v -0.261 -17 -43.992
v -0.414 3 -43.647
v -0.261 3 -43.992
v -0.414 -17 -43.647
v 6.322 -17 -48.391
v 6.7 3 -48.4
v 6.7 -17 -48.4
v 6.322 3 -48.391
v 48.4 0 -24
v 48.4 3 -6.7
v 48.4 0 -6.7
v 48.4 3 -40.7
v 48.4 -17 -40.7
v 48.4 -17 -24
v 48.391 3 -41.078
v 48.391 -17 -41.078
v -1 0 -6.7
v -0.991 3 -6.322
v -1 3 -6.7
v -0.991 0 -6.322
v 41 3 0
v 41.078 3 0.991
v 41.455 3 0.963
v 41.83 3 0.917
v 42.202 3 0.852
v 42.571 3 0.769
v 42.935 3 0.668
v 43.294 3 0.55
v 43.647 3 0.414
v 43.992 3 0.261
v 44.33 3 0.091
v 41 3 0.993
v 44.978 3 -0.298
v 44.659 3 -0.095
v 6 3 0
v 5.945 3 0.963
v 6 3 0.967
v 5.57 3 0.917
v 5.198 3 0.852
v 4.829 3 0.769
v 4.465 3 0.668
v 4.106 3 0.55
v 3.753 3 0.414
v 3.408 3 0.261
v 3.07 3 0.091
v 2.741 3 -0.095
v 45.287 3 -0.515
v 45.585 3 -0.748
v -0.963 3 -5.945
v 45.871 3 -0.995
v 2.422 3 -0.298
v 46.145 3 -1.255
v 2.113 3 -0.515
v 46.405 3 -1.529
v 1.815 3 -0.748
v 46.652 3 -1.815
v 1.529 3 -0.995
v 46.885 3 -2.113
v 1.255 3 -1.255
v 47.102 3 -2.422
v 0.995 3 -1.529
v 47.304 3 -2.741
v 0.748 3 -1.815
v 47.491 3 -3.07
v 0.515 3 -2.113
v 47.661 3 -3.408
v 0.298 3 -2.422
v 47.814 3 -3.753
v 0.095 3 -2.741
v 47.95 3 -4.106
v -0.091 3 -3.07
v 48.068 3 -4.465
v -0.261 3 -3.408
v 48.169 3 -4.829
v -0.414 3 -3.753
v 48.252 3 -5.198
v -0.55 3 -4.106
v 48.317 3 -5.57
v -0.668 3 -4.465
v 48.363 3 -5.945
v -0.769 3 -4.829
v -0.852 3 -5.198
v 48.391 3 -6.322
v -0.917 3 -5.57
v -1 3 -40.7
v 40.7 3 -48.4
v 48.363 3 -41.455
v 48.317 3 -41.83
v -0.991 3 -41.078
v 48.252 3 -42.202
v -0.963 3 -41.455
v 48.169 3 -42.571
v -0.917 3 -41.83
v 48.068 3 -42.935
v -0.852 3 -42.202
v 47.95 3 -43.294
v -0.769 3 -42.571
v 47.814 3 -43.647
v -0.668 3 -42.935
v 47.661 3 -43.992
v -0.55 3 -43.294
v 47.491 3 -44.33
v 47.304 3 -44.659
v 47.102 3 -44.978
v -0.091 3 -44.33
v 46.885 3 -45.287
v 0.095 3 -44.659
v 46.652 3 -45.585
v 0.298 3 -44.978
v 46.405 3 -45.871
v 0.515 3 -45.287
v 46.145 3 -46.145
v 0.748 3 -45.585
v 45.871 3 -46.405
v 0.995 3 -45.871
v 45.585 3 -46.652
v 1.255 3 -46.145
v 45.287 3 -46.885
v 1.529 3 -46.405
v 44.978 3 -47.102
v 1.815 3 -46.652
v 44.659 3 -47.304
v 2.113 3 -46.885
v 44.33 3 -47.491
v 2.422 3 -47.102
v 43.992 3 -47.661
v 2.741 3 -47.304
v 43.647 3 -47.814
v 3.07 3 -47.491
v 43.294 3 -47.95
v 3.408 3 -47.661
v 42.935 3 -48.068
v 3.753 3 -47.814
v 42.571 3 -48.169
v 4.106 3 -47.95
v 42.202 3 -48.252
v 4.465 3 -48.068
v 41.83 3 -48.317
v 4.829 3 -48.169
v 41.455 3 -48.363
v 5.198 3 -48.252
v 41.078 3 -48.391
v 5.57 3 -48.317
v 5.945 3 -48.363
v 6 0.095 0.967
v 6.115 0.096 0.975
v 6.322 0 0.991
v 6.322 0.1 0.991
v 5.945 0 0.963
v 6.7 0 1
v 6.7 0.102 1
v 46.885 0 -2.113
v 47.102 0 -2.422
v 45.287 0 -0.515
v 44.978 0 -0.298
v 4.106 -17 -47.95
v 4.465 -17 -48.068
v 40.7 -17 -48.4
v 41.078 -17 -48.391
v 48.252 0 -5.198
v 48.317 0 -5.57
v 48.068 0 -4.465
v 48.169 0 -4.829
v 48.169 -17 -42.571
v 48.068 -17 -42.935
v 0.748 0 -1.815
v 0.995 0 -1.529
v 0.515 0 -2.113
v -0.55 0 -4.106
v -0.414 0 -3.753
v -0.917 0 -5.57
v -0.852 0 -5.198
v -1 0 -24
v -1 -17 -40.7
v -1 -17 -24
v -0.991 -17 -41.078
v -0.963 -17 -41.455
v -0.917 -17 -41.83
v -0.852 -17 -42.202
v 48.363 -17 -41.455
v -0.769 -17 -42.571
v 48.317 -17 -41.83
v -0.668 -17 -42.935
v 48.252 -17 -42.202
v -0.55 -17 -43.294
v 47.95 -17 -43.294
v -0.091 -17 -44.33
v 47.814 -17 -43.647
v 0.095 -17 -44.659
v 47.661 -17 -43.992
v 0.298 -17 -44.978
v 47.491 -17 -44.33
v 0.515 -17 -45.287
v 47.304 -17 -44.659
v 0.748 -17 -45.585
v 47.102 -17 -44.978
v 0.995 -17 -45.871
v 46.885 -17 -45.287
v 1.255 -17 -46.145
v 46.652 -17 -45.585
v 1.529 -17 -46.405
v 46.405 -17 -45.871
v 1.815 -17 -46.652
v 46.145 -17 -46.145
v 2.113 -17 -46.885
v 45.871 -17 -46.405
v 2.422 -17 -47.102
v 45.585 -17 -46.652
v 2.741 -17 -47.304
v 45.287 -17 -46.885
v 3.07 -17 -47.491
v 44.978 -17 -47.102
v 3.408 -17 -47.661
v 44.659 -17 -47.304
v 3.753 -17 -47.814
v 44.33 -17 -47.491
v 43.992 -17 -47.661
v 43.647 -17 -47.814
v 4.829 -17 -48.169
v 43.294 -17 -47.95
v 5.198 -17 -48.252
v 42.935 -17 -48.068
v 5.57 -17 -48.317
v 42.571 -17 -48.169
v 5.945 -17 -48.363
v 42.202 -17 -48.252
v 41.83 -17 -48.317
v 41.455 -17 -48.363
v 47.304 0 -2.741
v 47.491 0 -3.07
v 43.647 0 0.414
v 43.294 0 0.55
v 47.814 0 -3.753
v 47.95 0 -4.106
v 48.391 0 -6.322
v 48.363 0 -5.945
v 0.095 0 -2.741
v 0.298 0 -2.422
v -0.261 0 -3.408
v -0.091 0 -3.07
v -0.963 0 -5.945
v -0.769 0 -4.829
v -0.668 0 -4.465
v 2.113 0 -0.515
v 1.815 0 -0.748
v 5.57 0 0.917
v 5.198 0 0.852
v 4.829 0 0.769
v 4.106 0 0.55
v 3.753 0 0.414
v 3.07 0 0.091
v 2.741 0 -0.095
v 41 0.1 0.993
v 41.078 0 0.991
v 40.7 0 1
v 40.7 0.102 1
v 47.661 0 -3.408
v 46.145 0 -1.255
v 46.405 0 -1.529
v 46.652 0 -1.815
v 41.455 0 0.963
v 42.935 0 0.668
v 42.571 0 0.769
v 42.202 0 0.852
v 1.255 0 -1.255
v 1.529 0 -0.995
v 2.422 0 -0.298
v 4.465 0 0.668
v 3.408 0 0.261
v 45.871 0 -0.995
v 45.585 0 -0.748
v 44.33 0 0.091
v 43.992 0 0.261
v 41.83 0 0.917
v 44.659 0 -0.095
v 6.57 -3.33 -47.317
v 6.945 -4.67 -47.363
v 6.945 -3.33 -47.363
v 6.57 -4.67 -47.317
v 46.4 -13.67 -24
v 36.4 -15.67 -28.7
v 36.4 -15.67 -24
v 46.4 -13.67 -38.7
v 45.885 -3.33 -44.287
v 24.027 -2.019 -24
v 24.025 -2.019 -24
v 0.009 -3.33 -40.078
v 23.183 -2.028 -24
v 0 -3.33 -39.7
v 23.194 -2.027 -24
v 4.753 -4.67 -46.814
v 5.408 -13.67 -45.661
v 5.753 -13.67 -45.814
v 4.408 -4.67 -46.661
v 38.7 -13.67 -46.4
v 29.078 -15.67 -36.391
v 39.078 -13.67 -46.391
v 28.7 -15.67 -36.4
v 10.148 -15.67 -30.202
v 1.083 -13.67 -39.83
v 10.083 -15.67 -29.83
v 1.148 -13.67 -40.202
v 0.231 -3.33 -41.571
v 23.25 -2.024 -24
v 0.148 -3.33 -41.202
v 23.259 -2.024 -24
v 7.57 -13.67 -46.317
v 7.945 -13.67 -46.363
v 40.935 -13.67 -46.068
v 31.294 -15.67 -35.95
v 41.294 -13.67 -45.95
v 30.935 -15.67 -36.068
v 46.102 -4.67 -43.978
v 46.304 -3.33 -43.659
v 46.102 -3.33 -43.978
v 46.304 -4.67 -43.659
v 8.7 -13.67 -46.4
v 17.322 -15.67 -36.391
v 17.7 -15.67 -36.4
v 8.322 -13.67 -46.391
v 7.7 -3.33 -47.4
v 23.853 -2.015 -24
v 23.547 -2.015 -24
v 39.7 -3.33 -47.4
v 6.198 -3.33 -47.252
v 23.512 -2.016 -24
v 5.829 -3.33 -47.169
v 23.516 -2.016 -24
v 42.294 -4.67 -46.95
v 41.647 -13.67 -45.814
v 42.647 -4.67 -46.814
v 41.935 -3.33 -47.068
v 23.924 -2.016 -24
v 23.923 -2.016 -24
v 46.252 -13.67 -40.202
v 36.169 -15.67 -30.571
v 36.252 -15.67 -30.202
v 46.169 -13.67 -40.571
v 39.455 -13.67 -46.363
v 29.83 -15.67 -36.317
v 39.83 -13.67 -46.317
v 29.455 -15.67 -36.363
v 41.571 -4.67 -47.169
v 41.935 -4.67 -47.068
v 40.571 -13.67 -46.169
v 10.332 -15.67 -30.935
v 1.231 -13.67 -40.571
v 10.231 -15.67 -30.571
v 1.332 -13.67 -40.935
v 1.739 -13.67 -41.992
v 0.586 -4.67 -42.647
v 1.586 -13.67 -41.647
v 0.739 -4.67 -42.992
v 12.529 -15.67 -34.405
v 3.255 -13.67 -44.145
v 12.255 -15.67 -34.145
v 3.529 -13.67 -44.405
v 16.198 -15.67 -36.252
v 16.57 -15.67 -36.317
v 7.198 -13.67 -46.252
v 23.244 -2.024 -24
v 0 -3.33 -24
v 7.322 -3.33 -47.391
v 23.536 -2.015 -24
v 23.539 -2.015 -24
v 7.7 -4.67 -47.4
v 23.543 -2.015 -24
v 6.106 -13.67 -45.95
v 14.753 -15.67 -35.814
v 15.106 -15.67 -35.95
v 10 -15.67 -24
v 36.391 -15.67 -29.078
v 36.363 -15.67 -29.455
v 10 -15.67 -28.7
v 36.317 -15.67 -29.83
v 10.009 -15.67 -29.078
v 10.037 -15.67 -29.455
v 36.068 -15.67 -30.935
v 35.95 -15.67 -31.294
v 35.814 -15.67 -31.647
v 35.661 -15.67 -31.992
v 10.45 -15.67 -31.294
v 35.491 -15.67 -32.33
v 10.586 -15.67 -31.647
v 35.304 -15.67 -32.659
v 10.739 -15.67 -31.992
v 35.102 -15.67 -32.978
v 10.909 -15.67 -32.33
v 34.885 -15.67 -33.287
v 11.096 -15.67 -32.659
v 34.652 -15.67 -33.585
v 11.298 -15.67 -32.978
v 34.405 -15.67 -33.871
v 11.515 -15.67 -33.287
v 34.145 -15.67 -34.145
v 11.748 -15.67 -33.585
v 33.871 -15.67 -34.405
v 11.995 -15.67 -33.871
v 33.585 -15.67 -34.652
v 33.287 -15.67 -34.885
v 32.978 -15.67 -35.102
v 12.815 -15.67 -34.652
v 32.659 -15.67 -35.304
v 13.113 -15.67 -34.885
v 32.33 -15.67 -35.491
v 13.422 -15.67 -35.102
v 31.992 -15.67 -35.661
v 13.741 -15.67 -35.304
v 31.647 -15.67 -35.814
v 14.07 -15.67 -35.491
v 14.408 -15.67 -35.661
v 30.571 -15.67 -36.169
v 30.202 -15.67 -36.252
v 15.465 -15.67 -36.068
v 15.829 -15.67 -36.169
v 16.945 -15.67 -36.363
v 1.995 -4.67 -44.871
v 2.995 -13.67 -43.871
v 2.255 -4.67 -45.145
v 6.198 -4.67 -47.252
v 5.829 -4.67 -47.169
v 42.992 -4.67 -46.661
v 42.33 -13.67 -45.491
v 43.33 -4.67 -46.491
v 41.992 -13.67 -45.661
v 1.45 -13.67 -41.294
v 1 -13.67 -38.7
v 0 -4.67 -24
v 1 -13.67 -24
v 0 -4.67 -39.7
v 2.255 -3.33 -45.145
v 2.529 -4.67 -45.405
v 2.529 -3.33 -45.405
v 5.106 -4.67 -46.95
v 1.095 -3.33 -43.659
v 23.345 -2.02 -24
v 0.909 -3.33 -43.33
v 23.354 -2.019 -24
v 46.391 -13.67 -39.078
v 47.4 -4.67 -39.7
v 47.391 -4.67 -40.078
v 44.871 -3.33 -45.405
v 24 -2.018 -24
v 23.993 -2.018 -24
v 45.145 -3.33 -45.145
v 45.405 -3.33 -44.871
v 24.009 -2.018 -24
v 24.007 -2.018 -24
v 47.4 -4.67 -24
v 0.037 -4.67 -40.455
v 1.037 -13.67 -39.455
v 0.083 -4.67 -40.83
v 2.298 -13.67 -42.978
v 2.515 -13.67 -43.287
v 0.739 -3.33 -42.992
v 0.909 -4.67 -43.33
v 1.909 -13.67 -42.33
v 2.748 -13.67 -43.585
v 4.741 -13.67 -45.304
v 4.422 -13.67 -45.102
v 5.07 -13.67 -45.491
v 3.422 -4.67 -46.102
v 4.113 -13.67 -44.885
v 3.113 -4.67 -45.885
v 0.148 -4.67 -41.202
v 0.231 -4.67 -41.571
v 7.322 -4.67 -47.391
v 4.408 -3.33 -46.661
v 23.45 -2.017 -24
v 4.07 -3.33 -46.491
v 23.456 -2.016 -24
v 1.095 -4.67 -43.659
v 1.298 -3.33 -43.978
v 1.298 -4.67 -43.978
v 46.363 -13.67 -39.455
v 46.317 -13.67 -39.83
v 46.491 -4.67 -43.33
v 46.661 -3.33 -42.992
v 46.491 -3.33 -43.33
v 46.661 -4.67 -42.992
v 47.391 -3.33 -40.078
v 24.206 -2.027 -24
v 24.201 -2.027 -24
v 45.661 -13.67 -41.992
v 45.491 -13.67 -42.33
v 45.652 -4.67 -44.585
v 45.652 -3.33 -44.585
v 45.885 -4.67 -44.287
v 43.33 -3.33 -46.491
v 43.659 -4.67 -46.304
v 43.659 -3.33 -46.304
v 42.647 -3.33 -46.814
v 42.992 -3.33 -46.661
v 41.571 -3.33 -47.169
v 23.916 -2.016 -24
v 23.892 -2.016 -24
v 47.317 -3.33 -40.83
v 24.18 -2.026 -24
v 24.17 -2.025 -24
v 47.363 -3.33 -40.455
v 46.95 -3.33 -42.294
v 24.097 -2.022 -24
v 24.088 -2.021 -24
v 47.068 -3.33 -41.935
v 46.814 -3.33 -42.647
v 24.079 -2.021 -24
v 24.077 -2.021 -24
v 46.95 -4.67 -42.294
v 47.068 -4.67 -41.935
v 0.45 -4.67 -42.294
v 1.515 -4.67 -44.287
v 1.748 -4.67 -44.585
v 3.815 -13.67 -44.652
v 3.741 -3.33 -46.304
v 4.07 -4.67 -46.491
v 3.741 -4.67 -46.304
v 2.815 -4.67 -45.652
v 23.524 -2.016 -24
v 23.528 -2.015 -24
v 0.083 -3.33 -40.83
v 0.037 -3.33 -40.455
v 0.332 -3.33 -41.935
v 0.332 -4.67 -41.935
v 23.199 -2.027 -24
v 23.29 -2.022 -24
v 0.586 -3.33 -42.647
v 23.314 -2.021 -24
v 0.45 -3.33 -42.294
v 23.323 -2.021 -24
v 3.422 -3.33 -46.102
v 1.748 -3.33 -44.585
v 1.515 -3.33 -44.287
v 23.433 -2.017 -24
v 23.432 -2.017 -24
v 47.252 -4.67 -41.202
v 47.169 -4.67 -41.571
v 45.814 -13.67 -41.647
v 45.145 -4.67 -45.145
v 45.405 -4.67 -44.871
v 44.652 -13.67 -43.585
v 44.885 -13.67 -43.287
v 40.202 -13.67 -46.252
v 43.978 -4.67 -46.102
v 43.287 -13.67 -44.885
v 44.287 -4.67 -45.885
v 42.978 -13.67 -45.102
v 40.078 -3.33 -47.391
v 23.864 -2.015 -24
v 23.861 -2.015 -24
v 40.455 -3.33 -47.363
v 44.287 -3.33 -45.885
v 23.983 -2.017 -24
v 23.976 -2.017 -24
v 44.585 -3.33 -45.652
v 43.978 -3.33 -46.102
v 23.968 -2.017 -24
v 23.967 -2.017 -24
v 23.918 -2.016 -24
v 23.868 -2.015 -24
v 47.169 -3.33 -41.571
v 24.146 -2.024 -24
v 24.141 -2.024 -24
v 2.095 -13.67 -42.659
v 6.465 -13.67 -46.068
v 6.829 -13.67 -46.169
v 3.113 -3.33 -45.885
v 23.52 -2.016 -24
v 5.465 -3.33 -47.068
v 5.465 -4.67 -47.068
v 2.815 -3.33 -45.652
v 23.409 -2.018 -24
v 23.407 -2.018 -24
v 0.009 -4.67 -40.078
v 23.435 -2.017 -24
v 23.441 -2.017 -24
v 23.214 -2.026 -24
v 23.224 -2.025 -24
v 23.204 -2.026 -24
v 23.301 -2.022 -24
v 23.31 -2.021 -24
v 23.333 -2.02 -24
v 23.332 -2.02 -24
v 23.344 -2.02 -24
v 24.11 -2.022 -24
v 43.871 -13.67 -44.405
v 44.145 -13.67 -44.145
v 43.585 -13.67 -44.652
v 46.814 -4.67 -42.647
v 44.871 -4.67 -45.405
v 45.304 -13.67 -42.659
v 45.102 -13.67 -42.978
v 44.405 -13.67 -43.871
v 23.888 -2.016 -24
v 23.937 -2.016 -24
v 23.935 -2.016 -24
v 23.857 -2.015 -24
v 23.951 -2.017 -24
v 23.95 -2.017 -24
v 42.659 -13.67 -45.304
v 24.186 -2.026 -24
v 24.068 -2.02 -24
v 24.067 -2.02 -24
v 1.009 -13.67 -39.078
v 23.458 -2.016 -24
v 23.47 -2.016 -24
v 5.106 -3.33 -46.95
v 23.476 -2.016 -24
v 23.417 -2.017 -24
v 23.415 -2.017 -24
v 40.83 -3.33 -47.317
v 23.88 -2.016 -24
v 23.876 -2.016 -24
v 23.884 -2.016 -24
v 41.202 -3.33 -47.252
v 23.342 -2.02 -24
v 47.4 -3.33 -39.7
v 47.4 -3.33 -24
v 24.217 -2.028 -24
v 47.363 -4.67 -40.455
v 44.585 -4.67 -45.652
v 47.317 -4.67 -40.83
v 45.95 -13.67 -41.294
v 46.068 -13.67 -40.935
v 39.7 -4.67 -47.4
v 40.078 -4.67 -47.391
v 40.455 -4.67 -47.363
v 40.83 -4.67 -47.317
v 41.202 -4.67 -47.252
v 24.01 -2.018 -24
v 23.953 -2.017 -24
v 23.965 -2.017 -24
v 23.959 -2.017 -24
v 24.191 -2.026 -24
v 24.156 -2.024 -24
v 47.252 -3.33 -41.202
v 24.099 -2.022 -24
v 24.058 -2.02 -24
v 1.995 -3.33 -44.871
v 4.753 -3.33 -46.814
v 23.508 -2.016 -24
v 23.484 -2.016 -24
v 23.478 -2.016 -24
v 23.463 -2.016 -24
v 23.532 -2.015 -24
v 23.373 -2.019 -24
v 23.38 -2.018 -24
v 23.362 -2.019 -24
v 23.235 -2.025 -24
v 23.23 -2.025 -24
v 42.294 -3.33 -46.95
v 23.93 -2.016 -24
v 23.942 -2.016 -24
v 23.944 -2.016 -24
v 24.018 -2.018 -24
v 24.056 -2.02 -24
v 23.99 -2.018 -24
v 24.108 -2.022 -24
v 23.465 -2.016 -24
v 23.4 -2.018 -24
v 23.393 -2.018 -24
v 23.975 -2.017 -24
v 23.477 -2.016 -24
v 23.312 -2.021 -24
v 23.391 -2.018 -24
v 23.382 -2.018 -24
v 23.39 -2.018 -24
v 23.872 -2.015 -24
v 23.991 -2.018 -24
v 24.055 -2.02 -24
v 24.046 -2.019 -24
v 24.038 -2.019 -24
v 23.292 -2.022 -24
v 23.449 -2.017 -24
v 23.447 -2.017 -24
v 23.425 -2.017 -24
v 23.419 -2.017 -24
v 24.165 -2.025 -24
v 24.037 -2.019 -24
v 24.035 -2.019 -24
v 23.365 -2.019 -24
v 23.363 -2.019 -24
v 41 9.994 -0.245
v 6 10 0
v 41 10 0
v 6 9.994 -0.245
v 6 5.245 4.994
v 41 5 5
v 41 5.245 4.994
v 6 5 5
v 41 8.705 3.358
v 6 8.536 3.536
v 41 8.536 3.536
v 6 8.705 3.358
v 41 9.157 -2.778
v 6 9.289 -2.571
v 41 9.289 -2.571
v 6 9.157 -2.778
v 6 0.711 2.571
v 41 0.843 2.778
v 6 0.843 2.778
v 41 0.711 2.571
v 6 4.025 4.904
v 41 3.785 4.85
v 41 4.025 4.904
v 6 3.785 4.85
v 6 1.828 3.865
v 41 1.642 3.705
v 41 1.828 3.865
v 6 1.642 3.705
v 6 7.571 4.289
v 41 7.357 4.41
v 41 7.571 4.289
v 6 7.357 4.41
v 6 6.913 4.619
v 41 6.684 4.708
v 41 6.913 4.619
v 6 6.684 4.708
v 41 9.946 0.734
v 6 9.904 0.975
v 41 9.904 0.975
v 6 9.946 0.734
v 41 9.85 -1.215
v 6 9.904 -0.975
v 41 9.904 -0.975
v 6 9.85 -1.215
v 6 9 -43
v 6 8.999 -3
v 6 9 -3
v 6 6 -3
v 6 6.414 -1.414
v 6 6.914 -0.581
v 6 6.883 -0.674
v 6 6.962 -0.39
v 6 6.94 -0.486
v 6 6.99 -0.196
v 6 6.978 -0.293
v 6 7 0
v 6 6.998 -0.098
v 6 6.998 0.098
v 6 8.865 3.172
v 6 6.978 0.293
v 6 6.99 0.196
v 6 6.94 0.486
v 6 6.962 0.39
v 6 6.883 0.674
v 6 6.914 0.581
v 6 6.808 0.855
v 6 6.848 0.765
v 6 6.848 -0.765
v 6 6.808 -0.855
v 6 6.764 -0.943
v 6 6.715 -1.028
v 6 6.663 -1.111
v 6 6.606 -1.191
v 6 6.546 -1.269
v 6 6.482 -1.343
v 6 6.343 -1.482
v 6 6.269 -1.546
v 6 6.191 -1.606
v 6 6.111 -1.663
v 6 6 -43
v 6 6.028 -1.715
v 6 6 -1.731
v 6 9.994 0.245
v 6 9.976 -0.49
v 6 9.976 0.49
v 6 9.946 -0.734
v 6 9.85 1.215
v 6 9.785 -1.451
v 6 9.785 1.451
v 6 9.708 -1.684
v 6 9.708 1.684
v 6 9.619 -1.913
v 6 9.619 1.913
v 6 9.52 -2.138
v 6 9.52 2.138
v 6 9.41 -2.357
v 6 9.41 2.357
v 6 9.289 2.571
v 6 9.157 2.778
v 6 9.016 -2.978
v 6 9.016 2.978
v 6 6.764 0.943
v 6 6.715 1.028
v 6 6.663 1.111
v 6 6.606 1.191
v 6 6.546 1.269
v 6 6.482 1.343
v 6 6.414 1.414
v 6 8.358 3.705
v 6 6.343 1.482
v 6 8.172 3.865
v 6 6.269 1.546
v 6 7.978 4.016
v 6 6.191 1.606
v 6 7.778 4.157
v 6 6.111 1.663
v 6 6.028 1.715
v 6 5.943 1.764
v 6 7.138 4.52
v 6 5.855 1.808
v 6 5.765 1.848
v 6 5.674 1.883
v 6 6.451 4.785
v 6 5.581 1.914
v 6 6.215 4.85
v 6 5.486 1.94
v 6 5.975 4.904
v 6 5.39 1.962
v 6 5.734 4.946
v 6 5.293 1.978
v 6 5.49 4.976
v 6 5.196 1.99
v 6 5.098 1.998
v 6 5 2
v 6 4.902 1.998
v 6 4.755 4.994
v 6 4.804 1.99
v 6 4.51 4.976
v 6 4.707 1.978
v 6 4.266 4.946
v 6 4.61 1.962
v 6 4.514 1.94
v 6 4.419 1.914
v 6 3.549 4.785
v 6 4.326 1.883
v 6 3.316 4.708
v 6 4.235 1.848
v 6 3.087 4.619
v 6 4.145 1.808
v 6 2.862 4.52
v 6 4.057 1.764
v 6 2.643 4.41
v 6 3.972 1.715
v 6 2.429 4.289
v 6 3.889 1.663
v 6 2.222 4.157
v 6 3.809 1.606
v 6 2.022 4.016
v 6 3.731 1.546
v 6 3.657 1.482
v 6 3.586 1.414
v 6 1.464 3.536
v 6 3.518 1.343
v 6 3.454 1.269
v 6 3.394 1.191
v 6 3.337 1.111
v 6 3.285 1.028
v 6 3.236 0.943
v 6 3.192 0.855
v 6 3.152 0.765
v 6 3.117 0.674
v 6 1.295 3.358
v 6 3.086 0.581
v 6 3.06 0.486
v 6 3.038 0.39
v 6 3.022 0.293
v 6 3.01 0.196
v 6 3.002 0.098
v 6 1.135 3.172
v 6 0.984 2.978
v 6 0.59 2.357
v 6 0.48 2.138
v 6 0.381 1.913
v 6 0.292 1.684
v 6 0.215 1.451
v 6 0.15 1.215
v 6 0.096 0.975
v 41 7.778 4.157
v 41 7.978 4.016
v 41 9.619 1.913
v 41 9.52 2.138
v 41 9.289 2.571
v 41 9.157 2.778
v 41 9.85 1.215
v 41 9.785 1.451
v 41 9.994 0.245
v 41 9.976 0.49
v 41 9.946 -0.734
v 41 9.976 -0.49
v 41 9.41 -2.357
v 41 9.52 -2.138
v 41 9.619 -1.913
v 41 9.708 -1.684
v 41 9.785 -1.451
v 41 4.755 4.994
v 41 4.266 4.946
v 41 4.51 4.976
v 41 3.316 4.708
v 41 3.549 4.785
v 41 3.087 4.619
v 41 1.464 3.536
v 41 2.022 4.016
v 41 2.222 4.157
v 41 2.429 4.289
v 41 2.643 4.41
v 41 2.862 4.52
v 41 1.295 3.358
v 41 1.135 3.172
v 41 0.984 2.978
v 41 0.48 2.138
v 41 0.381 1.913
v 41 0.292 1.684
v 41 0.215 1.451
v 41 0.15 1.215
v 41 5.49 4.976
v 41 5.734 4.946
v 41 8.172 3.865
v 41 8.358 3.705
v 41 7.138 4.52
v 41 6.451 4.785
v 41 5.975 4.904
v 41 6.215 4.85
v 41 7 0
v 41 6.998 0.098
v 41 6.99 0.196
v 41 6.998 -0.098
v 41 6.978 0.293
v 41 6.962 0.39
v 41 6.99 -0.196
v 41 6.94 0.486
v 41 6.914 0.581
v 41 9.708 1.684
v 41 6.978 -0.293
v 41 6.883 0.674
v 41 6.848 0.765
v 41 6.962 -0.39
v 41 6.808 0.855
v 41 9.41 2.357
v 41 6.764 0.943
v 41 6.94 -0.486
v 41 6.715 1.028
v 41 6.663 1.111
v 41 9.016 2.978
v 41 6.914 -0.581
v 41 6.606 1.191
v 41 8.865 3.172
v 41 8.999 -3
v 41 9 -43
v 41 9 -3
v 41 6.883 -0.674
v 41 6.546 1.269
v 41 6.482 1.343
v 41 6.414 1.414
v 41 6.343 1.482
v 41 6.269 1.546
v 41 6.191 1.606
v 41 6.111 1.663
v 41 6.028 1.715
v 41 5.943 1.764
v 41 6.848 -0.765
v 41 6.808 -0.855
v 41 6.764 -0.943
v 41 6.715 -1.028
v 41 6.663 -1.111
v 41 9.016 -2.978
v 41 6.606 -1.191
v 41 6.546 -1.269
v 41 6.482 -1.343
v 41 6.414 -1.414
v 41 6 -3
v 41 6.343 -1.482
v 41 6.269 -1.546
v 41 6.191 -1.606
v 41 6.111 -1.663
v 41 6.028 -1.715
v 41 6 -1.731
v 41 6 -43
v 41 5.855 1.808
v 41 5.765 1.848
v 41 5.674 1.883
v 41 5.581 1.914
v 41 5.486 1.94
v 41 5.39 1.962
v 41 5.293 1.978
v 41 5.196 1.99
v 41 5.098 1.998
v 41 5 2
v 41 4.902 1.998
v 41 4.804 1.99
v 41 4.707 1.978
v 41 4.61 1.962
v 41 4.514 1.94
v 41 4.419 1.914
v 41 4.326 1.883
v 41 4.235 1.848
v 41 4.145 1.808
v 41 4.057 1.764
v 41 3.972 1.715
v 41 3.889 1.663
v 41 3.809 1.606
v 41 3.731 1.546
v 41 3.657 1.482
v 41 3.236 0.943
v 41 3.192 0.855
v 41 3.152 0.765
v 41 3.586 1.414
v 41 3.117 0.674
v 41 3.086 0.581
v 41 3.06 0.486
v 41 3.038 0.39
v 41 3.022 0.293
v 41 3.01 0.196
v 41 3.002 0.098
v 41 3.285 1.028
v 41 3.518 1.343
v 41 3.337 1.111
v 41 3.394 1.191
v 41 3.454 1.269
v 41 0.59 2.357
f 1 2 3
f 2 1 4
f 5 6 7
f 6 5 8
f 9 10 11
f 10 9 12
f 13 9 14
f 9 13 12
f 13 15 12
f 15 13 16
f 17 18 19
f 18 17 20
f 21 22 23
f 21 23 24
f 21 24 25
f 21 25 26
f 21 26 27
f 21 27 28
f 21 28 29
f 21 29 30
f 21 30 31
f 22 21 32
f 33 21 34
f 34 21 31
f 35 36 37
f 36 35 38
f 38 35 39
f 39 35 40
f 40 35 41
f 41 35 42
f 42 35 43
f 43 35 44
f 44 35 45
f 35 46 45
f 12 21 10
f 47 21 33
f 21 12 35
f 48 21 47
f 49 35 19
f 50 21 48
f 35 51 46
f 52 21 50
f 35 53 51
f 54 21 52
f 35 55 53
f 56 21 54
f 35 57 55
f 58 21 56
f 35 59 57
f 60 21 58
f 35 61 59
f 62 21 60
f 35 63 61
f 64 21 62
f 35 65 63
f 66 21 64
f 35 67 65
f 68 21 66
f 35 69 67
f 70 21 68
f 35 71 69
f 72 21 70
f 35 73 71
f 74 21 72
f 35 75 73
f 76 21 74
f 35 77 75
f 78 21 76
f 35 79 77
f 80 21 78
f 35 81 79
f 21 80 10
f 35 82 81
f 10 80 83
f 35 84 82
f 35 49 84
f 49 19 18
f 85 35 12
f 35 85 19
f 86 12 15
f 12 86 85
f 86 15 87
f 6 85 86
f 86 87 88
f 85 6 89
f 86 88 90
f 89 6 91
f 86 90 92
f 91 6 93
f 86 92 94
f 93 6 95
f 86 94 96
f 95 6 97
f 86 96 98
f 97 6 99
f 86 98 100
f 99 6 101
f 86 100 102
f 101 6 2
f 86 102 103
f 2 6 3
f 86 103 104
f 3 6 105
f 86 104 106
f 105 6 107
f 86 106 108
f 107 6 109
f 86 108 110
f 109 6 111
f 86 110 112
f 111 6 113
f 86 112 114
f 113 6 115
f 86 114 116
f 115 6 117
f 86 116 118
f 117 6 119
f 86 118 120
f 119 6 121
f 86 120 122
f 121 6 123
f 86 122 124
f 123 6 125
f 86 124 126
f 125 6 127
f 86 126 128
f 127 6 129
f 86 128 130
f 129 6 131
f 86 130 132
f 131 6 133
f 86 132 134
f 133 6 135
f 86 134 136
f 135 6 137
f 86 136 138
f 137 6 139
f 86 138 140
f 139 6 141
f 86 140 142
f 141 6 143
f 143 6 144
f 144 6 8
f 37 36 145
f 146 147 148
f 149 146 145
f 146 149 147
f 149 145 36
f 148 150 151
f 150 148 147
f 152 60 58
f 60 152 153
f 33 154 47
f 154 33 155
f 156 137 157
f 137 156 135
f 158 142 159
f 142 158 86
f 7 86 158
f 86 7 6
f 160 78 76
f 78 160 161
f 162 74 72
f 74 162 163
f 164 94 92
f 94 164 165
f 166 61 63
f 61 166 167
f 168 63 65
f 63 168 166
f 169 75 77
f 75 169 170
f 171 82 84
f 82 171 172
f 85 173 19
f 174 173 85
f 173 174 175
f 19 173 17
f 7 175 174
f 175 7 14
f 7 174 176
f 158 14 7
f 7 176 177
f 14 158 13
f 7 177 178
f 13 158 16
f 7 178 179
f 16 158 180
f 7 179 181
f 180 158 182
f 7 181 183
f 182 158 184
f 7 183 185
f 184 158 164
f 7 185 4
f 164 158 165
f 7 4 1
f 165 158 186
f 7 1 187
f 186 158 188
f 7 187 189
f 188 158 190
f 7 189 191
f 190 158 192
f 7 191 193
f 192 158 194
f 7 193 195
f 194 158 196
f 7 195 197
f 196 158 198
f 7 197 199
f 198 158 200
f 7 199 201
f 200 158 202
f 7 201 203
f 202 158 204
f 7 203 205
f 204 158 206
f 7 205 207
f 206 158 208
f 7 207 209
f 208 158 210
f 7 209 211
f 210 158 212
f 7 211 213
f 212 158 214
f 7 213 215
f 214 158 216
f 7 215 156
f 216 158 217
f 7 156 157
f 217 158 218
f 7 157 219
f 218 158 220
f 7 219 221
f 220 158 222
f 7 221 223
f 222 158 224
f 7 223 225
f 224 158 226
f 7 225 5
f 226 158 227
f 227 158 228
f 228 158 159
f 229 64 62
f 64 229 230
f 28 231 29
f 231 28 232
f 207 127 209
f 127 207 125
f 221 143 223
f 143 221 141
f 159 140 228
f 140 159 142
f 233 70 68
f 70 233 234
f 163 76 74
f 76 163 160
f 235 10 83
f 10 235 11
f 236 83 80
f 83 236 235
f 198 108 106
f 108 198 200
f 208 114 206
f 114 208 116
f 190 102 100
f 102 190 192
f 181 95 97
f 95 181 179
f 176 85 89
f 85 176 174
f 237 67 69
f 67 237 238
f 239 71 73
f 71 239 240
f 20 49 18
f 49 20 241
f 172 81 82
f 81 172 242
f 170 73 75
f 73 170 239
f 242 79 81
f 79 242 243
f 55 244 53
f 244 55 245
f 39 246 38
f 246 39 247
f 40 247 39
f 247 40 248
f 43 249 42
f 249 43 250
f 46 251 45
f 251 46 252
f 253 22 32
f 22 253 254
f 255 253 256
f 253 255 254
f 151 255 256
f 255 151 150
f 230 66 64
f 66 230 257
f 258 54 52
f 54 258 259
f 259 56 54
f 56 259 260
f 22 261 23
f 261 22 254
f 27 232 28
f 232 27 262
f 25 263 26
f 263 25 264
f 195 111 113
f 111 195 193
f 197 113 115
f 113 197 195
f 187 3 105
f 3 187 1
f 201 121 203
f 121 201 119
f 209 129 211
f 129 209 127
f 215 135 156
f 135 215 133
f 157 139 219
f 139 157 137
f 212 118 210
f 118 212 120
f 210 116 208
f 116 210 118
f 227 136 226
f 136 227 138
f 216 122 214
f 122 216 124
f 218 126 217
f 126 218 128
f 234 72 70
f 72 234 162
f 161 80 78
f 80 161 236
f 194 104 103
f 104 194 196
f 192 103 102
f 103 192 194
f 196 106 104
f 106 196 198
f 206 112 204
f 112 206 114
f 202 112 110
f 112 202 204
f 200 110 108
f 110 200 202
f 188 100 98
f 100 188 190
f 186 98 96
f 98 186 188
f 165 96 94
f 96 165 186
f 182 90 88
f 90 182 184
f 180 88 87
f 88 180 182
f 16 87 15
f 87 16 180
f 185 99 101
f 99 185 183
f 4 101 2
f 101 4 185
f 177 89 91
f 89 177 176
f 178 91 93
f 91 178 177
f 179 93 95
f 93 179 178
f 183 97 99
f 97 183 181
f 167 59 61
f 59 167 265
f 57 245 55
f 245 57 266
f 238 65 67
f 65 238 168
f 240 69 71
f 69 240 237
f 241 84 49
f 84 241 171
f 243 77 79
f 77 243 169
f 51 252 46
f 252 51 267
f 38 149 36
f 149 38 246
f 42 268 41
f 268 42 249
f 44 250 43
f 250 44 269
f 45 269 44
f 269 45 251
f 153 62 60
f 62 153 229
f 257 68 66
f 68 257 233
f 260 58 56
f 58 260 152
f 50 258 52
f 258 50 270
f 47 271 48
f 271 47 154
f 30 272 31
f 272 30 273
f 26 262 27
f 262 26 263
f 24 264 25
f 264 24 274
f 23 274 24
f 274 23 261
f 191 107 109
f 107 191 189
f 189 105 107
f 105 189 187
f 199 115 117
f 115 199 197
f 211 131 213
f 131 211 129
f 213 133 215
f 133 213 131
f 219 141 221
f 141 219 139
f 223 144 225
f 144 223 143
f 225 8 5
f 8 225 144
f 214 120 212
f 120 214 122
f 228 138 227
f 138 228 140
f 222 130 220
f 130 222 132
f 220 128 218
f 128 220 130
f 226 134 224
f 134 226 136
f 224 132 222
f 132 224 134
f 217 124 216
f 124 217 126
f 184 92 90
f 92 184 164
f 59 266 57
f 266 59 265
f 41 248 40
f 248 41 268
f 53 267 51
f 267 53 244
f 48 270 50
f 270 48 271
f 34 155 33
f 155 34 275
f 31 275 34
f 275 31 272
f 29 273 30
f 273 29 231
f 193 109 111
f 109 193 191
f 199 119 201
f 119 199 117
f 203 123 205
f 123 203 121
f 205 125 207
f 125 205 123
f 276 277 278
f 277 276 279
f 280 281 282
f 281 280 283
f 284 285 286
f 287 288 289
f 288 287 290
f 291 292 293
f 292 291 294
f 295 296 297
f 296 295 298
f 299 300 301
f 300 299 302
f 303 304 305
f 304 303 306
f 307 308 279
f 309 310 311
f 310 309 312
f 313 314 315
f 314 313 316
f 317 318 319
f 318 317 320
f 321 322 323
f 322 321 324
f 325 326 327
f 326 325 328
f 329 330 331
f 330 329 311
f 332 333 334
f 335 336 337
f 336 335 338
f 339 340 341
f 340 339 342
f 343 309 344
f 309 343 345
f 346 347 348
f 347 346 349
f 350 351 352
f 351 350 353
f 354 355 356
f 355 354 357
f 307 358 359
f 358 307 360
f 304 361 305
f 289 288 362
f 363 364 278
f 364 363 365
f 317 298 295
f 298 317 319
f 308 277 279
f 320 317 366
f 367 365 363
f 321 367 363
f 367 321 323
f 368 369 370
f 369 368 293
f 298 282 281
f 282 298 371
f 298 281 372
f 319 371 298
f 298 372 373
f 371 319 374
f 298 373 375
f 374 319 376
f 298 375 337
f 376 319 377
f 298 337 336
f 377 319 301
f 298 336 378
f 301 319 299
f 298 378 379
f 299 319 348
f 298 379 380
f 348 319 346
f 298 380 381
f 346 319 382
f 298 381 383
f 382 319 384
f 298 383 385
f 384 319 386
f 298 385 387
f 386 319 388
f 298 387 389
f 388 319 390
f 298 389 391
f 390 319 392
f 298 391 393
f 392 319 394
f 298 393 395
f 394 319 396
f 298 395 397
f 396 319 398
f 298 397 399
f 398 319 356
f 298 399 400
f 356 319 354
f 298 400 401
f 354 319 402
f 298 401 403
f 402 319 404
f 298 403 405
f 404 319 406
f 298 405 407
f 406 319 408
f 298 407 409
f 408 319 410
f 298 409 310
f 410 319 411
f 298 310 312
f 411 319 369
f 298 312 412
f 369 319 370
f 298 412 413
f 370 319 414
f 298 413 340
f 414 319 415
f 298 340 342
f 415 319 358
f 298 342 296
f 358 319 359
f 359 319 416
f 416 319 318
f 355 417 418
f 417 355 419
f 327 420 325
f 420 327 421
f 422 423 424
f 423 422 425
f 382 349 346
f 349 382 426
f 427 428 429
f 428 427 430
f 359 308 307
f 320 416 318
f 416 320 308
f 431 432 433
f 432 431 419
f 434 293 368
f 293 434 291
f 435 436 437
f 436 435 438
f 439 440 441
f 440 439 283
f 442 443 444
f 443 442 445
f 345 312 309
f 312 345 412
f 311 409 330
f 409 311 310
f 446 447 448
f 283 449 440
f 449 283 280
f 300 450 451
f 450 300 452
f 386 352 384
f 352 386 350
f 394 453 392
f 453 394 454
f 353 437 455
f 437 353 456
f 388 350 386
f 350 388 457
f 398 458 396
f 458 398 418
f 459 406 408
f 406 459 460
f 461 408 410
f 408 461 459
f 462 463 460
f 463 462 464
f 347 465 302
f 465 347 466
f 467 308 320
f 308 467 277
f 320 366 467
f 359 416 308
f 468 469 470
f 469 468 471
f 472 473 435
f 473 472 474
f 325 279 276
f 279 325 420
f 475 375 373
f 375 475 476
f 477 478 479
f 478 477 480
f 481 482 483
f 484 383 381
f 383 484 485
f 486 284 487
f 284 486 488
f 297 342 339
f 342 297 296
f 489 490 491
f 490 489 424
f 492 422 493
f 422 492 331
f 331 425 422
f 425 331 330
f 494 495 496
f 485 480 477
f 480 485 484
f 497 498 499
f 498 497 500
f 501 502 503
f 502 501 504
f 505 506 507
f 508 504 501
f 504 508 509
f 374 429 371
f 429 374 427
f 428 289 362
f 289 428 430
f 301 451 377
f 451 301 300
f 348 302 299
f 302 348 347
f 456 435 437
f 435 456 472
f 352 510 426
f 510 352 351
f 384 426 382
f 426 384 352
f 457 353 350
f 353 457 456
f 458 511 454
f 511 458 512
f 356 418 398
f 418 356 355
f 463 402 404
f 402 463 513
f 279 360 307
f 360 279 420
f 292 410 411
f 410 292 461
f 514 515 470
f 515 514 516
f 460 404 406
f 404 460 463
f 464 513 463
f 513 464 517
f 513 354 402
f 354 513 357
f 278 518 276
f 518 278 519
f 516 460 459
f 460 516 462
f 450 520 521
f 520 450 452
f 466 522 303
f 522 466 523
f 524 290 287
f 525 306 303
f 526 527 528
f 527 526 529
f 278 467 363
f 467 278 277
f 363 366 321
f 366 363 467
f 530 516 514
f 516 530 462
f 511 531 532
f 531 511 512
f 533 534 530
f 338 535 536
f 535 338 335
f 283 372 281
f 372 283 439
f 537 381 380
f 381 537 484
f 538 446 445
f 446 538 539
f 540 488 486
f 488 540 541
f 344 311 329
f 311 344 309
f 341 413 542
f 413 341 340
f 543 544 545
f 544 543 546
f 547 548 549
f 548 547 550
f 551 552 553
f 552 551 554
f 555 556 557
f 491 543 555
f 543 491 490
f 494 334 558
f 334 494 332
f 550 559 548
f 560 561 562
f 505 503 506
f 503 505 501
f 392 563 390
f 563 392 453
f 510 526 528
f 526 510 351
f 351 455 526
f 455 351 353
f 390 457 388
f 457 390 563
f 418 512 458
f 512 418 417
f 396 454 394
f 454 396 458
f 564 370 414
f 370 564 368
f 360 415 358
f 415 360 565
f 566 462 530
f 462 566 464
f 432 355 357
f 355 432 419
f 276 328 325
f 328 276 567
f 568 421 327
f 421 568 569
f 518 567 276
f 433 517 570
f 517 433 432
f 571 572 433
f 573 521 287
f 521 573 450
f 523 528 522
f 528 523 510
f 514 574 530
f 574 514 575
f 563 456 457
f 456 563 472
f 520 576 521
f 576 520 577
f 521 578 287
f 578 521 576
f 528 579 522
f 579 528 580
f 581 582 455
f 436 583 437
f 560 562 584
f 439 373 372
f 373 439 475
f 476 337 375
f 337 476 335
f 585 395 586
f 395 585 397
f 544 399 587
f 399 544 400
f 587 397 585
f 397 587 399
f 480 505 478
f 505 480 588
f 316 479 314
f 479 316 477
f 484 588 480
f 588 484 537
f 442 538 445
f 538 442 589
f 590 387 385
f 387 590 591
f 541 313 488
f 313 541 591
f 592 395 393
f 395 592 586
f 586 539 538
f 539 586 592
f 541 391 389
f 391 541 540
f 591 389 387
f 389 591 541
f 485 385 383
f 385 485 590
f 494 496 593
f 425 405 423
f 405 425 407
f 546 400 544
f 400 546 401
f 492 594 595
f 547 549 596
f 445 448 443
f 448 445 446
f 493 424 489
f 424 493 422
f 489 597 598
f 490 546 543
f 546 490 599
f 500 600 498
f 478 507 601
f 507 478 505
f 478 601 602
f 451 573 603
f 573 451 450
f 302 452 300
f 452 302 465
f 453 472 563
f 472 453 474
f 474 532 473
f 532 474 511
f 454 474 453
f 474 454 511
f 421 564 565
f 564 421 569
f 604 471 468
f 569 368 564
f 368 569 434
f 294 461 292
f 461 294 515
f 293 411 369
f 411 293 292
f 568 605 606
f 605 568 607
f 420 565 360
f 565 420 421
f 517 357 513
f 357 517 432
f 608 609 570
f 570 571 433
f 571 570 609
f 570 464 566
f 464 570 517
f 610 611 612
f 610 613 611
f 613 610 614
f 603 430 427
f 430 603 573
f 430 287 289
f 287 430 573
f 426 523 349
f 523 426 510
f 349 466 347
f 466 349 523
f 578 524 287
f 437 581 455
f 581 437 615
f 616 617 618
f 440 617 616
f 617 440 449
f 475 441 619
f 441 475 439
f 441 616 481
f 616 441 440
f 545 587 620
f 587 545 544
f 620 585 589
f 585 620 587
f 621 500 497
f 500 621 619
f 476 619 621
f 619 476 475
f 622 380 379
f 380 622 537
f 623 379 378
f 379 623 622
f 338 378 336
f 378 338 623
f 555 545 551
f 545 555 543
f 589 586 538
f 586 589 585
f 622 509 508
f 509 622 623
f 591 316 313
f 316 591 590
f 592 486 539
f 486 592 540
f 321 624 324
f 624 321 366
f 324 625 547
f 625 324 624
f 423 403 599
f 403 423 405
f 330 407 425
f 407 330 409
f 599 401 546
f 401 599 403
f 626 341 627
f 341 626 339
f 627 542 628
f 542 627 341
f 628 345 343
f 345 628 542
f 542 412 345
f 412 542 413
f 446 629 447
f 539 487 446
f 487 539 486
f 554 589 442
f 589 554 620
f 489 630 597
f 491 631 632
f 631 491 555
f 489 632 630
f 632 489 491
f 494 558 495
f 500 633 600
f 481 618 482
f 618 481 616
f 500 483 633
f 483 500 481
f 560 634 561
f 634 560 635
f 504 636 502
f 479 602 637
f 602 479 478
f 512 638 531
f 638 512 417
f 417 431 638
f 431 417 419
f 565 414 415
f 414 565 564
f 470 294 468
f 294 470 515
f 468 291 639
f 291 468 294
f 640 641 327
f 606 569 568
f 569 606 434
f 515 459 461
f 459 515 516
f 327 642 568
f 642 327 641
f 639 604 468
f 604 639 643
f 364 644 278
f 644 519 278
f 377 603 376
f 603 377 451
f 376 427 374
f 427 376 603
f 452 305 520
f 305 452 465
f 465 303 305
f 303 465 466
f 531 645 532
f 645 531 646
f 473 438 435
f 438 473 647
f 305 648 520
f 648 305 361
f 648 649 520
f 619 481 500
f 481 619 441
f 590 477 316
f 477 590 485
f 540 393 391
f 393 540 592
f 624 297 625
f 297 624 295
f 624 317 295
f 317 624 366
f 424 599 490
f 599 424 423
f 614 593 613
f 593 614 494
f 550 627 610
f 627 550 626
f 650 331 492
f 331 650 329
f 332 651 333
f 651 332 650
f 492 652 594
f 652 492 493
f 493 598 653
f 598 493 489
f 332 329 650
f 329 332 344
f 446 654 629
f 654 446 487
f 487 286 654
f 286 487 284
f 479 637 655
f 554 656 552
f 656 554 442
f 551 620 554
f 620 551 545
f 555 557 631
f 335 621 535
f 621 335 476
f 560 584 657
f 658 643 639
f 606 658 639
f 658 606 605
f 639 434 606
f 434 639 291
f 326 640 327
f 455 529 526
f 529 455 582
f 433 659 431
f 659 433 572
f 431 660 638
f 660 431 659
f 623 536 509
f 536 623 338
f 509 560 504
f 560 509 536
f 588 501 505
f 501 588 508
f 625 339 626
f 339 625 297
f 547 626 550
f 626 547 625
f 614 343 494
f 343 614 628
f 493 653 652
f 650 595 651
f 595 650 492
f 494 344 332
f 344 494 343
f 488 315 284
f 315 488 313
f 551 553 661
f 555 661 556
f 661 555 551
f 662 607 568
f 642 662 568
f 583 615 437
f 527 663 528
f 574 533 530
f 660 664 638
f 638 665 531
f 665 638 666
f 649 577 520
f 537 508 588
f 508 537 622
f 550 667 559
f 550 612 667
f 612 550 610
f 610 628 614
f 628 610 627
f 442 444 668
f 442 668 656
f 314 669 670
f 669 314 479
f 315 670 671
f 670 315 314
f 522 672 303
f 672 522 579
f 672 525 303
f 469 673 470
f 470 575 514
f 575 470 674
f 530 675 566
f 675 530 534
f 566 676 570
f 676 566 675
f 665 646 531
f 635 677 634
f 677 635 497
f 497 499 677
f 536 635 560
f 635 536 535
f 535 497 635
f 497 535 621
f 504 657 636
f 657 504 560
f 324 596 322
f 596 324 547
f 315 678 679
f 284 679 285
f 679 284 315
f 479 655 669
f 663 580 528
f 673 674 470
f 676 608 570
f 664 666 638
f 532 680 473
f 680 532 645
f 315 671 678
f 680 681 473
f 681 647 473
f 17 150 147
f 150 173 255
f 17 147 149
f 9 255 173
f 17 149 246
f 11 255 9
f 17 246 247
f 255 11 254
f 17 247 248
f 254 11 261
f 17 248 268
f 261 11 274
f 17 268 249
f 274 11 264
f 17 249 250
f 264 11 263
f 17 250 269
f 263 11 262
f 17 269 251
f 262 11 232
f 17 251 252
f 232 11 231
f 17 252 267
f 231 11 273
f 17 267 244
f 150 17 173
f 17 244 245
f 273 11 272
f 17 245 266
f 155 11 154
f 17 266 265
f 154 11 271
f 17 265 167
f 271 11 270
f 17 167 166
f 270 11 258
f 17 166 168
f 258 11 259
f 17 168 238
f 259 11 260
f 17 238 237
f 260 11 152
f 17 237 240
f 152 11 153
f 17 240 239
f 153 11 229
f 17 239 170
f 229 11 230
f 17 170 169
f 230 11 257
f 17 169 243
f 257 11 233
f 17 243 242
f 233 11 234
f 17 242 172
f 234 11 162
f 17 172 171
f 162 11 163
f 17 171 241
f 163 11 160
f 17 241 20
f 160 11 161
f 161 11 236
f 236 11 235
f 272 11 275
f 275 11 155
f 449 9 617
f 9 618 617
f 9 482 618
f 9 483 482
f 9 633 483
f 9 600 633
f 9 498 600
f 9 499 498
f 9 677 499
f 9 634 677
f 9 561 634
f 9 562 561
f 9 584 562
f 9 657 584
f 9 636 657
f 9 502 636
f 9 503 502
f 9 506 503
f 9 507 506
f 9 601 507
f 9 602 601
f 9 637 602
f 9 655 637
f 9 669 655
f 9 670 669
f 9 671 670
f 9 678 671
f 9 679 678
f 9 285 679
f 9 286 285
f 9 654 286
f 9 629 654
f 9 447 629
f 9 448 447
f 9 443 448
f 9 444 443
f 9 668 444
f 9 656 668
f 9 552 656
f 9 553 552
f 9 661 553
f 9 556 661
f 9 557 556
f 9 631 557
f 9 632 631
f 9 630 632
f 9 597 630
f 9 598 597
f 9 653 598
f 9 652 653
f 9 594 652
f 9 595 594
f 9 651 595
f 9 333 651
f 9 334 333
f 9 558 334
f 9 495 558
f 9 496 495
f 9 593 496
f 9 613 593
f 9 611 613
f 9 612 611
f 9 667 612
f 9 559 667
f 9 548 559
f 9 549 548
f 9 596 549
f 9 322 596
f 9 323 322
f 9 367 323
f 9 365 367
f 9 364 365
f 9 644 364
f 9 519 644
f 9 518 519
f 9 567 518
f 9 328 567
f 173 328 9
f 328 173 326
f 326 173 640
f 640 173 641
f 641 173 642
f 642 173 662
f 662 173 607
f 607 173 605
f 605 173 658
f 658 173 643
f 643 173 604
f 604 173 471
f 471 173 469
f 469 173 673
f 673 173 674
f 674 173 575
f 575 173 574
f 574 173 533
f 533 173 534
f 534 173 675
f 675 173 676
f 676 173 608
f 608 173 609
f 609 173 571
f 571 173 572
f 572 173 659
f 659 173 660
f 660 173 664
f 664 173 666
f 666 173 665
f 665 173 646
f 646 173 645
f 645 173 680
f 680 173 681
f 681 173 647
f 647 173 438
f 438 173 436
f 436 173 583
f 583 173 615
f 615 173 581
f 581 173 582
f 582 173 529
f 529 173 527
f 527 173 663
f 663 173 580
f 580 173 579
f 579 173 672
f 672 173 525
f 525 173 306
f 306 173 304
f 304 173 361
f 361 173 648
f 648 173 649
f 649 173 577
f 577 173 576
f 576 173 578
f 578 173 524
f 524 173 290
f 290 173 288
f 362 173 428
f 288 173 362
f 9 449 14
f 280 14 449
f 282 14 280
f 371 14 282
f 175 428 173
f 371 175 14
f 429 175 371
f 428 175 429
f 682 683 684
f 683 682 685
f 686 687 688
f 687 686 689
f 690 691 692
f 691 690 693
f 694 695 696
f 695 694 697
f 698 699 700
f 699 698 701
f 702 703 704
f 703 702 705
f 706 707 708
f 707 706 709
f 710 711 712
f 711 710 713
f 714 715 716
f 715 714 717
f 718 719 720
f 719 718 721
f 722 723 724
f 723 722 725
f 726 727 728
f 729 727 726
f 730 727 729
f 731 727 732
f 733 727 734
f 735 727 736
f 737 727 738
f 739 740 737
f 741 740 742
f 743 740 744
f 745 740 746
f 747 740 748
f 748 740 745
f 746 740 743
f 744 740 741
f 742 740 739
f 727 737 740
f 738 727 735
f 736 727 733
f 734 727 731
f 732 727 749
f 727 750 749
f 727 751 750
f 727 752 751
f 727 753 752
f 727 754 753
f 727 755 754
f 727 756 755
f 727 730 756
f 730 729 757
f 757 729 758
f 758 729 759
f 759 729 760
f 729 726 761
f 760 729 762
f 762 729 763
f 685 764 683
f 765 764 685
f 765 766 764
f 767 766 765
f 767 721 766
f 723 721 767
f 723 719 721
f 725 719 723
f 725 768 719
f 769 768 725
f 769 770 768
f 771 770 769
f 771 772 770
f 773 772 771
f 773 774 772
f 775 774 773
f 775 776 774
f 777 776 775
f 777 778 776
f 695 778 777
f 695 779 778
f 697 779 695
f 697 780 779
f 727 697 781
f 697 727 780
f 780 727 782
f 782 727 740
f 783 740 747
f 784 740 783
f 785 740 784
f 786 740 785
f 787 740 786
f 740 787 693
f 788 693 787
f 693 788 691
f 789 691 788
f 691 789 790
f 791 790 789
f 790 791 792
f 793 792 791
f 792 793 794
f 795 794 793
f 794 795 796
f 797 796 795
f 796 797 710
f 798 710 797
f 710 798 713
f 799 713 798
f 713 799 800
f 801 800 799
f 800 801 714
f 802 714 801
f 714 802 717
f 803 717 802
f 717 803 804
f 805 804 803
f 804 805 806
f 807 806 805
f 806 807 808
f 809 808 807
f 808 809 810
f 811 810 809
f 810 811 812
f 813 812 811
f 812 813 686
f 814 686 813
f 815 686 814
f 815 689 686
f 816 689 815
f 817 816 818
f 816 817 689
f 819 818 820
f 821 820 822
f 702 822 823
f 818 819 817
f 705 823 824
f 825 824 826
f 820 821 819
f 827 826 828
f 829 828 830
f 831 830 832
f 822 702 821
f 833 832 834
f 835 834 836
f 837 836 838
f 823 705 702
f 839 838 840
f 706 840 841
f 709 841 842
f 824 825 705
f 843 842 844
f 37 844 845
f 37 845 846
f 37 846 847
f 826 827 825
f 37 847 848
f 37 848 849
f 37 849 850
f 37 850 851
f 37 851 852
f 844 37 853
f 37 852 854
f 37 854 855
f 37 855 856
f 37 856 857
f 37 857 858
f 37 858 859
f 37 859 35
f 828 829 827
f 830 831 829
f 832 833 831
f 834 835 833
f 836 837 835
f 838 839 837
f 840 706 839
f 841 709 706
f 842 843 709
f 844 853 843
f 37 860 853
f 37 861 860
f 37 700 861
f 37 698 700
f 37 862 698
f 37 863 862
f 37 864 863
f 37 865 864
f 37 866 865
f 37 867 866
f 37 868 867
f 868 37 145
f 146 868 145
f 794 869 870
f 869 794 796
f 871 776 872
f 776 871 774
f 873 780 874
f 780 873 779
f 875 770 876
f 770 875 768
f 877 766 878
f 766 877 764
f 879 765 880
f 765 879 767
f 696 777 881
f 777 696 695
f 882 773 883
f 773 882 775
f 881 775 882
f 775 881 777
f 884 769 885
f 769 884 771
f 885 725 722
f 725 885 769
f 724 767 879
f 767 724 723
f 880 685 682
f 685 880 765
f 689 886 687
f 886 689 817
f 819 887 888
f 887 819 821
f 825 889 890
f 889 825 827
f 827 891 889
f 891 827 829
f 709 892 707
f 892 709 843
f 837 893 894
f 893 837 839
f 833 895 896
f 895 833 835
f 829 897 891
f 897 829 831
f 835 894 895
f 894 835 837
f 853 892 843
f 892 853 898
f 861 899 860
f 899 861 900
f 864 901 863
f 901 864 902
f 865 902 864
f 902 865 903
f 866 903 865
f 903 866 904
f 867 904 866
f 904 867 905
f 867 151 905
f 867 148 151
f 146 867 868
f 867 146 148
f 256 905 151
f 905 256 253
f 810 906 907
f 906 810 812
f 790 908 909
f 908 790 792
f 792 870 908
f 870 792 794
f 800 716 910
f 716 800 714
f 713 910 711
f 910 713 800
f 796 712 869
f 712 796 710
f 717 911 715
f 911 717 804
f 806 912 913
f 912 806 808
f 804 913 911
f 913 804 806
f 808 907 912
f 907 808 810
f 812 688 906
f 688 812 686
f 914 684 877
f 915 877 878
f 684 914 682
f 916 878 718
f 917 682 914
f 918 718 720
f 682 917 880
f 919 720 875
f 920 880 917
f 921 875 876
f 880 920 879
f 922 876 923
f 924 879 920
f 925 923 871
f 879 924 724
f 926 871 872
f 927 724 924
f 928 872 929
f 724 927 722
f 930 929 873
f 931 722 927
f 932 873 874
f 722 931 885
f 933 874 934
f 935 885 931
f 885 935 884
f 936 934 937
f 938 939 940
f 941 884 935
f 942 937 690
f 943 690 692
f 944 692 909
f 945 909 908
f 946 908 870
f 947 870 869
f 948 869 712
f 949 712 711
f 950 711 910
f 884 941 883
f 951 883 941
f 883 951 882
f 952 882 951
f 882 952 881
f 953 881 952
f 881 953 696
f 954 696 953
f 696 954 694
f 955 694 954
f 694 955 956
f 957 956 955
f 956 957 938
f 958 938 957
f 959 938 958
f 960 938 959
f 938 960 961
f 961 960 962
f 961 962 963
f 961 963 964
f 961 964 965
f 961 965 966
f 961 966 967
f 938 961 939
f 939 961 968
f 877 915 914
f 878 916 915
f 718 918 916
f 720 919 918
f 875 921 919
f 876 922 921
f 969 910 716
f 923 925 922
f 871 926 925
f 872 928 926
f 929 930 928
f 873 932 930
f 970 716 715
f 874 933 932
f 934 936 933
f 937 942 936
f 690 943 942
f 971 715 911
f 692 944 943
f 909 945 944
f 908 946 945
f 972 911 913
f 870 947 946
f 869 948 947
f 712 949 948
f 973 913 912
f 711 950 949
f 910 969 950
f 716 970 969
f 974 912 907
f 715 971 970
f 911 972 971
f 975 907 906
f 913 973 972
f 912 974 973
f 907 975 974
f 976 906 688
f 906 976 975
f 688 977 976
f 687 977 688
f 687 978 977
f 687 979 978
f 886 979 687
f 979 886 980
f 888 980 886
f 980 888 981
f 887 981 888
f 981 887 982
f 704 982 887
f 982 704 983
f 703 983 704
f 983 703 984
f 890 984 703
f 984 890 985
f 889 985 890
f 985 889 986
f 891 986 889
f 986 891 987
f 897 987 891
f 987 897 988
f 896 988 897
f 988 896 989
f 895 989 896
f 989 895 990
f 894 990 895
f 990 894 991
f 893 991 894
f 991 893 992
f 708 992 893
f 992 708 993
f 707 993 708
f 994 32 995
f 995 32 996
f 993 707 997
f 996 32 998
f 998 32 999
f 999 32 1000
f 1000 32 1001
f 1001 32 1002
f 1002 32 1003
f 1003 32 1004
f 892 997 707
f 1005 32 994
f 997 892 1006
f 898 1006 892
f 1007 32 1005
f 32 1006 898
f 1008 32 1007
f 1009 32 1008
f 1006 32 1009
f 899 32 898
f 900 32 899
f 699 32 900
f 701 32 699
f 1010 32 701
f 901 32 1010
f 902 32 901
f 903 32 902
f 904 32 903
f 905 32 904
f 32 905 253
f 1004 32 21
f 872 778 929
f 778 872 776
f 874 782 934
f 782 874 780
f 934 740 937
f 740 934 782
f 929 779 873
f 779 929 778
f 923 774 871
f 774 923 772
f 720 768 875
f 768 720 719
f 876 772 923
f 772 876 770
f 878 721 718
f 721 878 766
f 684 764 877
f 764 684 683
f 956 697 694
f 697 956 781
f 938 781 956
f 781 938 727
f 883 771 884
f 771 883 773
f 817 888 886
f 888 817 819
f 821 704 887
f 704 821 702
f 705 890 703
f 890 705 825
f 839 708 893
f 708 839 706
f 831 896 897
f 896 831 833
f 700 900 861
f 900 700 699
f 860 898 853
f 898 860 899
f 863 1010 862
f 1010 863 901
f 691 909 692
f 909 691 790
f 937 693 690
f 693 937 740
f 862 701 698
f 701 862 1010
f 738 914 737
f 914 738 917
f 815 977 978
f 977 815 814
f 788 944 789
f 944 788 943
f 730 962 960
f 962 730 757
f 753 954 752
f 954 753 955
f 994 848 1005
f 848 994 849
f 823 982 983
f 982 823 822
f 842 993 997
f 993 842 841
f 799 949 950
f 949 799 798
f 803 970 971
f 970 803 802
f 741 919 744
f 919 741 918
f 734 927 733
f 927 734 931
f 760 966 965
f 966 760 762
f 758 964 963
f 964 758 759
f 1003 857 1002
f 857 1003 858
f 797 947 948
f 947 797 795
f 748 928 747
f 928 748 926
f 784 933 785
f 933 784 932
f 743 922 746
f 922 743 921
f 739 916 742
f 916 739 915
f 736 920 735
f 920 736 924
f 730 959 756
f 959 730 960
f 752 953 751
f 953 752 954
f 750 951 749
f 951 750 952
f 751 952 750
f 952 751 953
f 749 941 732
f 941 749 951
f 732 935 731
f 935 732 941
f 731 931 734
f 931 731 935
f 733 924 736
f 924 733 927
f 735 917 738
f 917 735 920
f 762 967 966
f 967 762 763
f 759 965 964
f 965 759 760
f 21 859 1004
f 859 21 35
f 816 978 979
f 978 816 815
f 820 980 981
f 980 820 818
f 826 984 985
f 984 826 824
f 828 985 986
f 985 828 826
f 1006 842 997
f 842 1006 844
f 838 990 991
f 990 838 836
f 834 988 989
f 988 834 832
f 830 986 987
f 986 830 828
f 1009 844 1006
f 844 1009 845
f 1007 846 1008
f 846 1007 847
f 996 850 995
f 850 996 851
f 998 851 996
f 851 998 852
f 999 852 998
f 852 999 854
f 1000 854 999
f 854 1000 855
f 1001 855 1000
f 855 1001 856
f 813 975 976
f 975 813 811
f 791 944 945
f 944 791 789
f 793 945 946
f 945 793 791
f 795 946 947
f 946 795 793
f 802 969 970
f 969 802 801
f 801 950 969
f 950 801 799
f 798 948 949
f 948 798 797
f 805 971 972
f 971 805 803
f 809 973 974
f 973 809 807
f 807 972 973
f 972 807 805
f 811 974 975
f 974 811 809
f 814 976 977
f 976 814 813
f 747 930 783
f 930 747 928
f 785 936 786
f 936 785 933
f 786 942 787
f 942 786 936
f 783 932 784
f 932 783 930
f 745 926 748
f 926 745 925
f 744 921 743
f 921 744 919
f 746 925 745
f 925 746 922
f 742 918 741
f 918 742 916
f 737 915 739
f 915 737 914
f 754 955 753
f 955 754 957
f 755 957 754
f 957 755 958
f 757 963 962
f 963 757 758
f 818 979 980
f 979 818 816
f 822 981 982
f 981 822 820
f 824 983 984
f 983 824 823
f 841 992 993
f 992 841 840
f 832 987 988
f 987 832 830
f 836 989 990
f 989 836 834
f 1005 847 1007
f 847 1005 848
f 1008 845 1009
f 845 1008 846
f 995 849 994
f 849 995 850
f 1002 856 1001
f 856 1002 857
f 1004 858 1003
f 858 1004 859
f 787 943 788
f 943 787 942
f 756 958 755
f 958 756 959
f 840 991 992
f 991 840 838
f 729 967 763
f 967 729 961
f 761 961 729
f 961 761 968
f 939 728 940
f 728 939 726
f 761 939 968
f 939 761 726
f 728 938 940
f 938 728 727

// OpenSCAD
edge_radius=7.7;

module ta_ba08(c=false) {
    
    center_num=c==true?-16:edge_radius;
    points=[
        [0,0,0],[32,0,0],[32,32,0],[0,32,0],
        [1,1,-9],[31,1,-9],[31,31,-9],[1,31,-9],
        [10,10,-11],[21,10,-11],[21,21,-11],[10,21,-11]
    ];
    translate([center_num, center_num, 0])
    hull() {
        for (i=points) {
            translate(i) cylinder(r=edge_radius, h=1.34, center=true);
        }
        translate([16, 16, 1]) sphere(r=1);
    }
    
}

module clip_holder() {
    union() {
        difference(){
            points=[
                [edge_radius-1,edge_radius-1,0],[33+edge_radius,edge_radius-1,0],[33+edge_radius,33+edge_radius,0],[edge_radius-1,33+edge_radius,0]
            ];
            translate([0, 0, -7])
            hull() {
                for (i=points) {
                    translate(i) cylinder(r=edge_radius, h=20, center=true);
                }
            }
            translate([0, 0, -4])
            ta_ba08(c=false);
            translate([-1, -1, -20])
            cube(size=[50, 25, 20], center=false);
        }
        difference(){
            translate([6, 0, 5]) rotate([0, 90, 0]) cylinder(r=5, h=35, center=false);
            translate([6, 0, 5]) rotate([0, 90, 0]) cylinder(r=2, h=35, center=false);
            translate([6, 0, 0]) cube(size=[35, 10, 6], center=false);
        }
        translate([6, 3, 6])
        cube(size=[35, 40, 3], center=false);
    }
    
    
}

rotate([-90, 0, 0])
clip_holder($fn=128);
